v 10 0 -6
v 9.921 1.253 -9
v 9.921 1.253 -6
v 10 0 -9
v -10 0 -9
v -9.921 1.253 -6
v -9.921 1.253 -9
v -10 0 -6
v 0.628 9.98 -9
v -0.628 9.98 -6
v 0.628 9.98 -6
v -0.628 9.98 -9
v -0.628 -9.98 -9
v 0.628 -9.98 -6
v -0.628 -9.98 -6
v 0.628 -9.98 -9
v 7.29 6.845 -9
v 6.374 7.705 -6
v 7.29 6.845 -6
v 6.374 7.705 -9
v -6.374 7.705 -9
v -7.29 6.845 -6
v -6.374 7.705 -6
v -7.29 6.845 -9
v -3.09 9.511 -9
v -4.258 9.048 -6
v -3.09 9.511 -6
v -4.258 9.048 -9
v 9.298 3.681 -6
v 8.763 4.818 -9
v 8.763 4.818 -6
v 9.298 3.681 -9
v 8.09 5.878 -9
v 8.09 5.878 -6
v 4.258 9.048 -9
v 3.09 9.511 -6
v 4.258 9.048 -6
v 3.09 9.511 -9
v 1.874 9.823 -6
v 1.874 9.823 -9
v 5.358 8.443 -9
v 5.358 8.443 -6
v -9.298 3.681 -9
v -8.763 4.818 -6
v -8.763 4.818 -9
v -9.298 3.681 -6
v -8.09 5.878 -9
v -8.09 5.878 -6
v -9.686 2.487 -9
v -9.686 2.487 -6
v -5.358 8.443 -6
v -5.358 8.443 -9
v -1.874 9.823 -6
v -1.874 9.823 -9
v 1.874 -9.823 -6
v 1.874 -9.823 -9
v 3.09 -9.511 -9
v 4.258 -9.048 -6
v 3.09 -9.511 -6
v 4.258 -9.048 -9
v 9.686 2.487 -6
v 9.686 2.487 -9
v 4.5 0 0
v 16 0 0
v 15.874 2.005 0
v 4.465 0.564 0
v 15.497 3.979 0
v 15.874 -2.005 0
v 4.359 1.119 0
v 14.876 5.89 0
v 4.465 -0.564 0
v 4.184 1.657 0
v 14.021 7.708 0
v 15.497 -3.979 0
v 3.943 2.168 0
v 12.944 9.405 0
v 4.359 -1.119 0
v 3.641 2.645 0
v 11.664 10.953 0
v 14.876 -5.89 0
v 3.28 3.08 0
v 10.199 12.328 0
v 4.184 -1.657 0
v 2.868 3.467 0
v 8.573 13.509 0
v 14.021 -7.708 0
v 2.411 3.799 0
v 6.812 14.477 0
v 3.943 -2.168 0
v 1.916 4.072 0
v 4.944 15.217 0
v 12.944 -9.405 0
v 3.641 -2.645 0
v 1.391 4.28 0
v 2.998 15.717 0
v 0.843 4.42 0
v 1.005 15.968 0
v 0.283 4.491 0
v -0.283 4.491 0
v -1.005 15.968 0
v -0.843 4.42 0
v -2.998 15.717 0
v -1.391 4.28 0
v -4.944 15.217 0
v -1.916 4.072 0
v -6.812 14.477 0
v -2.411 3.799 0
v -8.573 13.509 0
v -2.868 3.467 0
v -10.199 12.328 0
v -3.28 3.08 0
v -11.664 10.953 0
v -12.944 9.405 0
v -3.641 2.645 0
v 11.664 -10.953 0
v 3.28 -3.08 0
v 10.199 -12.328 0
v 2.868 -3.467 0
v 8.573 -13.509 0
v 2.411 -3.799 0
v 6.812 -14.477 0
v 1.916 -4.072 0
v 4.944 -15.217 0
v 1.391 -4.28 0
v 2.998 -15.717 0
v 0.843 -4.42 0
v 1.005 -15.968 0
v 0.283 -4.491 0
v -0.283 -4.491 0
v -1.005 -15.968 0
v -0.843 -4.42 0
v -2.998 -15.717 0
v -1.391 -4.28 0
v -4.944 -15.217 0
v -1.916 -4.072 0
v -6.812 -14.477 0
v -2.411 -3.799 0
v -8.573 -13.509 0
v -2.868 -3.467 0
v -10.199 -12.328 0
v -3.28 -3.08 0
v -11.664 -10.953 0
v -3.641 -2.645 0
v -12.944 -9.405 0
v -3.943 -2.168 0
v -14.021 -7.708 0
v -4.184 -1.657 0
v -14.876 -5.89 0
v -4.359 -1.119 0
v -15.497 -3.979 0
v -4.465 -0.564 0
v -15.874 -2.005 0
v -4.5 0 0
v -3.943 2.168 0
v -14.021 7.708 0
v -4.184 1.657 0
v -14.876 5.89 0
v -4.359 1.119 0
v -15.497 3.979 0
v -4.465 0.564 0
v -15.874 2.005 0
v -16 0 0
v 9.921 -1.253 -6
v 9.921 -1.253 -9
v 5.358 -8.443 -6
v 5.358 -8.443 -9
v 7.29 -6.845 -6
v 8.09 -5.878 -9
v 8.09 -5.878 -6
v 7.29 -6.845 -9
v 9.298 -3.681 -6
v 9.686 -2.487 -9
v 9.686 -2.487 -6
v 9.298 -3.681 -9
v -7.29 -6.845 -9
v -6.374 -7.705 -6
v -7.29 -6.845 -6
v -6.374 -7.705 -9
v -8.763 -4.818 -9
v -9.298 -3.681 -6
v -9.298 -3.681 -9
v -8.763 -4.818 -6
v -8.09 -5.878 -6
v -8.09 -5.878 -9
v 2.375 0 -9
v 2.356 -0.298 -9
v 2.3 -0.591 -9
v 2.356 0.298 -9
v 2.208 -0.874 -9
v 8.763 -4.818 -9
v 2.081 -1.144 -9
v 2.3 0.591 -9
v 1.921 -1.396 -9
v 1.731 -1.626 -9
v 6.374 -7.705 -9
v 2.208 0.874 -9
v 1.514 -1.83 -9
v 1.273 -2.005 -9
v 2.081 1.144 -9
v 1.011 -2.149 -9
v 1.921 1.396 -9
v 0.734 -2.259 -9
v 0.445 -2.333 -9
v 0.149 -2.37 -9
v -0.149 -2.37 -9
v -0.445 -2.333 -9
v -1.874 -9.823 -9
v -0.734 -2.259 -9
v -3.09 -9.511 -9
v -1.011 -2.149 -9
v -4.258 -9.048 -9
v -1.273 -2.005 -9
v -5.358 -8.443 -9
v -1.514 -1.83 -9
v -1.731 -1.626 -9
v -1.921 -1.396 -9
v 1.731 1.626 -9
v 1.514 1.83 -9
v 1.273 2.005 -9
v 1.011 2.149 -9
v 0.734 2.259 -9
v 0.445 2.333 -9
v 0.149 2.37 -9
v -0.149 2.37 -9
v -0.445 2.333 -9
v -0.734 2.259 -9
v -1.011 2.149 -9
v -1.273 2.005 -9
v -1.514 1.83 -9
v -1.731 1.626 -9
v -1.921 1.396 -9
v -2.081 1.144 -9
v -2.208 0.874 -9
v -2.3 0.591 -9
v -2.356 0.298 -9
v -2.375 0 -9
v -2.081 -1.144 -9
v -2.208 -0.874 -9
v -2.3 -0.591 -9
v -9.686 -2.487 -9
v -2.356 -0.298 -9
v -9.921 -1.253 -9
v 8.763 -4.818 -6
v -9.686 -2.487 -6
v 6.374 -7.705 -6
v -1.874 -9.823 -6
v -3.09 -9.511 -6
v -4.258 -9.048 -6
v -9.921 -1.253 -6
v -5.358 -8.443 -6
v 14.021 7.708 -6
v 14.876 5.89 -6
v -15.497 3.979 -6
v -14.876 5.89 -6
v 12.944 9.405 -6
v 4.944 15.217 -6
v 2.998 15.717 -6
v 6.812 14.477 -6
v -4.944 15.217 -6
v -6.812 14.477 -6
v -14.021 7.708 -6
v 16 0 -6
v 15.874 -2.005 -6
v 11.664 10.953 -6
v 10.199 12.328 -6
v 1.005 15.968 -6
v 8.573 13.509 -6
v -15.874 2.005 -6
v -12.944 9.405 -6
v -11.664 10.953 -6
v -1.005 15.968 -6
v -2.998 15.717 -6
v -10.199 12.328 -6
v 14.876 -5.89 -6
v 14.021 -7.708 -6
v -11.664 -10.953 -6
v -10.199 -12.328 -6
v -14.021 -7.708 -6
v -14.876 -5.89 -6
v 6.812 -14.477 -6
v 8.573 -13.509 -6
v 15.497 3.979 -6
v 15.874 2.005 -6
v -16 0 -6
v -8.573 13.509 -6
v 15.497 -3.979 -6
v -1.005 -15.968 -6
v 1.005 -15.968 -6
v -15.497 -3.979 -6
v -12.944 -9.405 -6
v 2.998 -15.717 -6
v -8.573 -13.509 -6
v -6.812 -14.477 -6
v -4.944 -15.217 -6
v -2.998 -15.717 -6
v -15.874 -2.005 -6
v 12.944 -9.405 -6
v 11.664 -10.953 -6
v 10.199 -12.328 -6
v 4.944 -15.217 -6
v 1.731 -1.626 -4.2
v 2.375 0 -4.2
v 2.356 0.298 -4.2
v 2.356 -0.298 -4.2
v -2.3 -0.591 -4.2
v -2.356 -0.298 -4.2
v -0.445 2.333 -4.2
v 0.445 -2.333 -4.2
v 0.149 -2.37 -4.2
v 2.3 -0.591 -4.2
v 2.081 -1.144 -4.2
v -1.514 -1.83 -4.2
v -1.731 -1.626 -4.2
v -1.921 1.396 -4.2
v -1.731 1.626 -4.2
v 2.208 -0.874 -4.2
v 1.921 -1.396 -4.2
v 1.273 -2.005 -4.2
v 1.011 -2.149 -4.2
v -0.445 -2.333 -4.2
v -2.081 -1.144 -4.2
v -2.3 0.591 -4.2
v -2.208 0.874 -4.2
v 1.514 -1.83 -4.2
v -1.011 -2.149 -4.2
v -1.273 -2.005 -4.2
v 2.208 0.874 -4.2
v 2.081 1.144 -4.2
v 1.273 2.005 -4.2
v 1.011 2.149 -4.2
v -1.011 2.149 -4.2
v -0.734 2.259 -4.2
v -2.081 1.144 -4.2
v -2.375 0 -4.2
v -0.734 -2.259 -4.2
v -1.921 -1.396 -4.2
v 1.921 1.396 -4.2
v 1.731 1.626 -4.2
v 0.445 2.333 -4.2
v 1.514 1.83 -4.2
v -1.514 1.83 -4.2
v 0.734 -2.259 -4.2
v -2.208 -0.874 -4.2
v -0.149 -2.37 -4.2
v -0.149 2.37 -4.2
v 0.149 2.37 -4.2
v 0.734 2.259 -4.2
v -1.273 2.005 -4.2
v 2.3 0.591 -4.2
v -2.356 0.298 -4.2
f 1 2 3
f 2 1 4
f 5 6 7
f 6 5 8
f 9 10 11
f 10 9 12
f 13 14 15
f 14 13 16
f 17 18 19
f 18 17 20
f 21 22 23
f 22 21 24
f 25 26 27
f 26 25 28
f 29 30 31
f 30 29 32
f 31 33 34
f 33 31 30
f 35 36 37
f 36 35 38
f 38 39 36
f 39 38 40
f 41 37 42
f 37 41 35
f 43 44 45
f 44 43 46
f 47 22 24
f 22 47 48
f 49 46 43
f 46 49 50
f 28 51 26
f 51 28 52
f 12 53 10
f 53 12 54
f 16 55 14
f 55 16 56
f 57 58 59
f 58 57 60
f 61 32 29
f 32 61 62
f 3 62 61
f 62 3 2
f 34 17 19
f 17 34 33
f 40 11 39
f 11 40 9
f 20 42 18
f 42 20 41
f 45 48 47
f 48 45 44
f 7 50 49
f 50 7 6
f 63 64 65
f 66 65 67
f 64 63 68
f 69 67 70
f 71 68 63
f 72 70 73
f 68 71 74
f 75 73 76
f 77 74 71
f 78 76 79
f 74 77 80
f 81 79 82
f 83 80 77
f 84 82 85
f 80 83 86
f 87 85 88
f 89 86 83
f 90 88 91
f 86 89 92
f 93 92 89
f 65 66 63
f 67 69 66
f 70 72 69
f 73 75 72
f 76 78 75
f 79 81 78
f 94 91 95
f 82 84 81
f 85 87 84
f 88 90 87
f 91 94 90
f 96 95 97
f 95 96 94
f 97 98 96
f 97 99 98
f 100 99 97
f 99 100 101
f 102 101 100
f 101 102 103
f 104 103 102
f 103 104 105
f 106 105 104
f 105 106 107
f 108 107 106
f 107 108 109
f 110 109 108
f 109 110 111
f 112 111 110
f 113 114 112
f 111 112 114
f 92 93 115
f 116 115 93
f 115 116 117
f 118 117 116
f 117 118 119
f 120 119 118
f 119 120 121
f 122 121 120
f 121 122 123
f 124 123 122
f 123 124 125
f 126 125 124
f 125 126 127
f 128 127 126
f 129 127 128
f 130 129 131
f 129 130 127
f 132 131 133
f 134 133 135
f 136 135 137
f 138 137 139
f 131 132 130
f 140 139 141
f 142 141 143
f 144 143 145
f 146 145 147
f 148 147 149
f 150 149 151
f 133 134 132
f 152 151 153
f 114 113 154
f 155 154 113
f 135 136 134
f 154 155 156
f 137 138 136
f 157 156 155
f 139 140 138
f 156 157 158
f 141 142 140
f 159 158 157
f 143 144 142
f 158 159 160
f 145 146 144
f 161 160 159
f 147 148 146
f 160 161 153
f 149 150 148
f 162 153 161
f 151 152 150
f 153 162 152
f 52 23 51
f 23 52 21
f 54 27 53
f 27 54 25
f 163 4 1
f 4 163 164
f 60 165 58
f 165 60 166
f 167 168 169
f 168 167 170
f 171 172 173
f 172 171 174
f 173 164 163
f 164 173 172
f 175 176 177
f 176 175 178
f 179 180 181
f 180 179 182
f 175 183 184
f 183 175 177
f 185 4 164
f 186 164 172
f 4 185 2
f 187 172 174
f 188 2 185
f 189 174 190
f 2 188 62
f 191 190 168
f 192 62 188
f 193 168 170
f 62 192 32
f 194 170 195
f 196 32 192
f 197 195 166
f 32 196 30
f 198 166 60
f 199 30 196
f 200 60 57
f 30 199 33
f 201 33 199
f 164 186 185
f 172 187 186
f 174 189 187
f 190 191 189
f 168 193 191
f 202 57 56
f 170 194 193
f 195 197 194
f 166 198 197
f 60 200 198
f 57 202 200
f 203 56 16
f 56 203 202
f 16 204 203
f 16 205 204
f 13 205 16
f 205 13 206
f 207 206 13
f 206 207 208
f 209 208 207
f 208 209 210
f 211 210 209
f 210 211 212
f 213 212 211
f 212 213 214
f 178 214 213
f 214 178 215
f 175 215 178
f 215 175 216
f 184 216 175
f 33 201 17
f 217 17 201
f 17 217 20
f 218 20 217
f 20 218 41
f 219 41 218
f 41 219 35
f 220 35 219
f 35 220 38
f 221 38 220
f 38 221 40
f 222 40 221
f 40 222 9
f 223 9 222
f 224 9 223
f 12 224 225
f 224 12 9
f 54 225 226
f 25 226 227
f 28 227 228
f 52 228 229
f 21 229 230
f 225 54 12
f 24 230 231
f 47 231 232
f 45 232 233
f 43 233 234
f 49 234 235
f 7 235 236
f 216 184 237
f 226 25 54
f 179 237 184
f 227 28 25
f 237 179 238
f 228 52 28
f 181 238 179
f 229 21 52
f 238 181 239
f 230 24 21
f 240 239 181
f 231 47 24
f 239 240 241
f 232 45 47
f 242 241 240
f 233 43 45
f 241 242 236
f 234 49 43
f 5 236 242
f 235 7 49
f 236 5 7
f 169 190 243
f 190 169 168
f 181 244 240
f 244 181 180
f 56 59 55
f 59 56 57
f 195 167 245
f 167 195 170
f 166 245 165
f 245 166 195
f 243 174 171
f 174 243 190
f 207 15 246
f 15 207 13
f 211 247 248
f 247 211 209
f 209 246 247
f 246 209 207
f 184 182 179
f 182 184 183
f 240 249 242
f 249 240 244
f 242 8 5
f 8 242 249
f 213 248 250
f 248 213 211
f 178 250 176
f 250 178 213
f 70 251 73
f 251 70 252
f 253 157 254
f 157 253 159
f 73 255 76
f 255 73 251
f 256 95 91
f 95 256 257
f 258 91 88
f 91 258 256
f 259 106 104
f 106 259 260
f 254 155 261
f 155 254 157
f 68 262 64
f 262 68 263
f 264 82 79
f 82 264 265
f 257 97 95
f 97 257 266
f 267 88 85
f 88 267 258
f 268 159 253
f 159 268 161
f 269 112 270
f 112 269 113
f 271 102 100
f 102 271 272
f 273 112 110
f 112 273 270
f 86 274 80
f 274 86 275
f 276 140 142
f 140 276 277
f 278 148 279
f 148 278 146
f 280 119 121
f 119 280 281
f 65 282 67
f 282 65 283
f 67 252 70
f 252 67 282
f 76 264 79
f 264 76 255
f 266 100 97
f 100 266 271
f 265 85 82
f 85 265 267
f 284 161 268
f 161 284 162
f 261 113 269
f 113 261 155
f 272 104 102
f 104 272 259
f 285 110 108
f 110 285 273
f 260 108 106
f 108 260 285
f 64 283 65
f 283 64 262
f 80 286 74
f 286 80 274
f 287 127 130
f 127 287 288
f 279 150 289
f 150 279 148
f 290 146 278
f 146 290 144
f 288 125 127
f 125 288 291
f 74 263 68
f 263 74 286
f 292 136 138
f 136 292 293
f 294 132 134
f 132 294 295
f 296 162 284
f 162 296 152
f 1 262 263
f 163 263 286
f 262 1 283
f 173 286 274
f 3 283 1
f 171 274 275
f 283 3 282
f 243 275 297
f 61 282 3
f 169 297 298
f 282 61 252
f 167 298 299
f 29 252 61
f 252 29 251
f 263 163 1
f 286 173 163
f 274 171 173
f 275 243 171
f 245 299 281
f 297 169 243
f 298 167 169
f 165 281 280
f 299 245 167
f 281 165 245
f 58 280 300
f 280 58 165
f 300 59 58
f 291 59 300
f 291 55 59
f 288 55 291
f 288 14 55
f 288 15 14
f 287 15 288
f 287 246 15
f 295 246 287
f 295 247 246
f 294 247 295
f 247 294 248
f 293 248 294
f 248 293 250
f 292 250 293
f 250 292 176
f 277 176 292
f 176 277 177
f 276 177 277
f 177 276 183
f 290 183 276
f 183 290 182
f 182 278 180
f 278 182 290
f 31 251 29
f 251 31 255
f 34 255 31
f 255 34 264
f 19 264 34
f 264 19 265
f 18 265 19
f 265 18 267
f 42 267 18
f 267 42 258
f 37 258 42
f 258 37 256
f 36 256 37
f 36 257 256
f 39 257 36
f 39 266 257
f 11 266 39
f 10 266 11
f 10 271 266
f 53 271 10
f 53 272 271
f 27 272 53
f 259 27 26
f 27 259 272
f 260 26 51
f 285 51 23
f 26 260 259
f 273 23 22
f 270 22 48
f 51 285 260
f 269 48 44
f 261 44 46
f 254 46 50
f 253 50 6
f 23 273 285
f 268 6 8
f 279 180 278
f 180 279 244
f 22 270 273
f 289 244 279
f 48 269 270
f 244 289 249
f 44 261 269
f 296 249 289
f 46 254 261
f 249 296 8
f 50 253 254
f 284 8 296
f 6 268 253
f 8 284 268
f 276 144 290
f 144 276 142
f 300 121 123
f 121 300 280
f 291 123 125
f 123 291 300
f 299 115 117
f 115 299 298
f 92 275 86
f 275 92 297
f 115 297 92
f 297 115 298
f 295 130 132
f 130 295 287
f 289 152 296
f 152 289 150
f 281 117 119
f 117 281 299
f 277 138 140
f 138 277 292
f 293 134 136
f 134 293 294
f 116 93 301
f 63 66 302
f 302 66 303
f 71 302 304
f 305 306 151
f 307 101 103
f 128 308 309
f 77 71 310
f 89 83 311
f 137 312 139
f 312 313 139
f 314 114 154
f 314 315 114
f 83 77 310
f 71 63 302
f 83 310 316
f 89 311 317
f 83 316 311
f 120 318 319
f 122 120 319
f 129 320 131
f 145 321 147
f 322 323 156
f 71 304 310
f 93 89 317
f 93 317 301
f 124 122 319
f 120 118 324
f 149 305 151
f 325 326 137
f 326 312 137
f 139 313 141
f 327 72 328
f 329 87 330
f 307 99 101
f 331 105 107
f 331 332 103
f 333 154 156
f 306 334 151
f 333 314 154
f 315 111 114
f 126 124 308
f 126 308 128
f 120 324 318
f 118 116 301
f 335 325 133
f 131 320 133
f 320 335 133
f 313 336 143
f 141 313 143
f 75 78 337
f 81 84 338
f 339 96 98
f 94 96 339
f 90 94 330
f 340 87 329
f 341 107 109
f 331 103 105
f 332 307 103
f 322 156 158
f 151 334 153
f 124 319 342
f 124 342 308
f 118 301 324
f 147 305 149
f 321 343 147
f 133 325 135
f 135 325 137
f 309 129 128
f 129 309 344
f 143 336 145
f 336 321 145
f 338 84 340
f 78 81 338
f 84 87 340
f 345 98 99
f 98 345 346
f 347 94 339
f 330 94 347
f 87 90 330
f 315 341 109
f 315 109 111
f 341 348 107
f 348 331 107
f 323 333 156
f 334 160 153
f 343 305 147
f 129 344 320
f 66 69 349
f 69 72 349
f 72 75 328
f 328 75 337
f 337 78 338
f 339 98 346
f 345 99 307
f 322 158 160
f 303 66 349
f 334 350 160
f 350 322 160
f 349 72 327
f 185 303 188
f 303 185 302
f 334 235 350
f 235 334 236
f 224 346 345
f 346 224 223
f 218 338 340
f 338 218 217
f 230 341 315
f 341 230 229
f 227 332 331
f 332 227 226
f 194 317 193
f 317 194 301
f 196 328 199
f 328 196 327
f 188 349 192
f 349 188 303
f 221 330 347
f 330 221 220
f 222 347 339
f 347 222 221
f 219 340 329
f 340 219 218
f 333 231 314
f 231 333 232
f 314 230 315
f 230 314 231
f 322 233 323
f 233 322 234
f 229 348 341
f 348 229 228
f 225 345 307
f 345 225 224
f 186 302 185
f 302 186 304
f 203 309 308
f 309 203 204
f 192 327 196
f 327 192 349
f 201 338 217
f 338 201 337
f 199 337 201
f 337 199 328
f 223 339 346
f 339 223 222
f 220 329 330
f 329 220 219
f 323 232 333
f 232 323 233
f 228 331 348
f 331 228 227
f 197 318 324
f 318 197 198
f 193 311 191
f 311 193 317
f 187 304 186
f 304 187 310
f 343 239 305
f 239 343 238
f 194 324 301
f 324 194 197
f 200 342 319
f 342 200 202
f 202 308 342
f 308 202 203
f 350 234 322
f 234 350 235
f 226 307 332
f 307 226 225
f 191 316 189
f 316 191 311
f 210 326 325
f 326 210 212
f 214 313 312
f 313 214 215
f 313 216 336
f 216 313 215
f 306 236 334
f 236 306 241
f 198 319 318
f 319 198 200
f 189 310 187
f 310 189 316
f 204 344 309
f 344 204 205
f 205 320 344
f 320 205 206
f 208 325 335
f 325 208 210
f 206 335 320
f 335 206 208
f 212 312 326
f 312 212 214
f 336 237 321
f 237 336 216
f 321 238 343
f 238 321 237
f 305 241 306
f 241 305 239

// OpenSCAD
$fn = 50;


difference() {
	union() {
		translate(v = [0, 0, -9.0000000000]) {
			cylinder(h = 9, r = 10.0000000000);
		}
		translate(v = [0, 0, -6.0000000000]) {
			cylinder(h = 6, r = 16.0000000000);
		}
	}
	union() {
		translate(v = [0, 0, 0]) {
			rotate(a = [0, 0, 0]) {
				difference() {
					union() {
						#translate(v = [0, 0, -9.0000000000]) {
							cylinder(h = 9, r = 2.2500000000);
						}
						#translate(v = [0, 0, -4.2000000000]) {
							cylinder(h = 4.2000000000, r = 10.0000000000, r1 = 2.3750000000, r2 = 4.5000000000);
						}
						#translate(v = [0, 0, -9.0000000000]) {
							cylinder(h = 9, r = 2.3750000000);
						}
						#translate(v = [0, 0, -9.0000000000]) {
							cylinder(h = 9, r = 2.2500000000);
						}
					}
					union();
				}
			}
		}
	}
}
